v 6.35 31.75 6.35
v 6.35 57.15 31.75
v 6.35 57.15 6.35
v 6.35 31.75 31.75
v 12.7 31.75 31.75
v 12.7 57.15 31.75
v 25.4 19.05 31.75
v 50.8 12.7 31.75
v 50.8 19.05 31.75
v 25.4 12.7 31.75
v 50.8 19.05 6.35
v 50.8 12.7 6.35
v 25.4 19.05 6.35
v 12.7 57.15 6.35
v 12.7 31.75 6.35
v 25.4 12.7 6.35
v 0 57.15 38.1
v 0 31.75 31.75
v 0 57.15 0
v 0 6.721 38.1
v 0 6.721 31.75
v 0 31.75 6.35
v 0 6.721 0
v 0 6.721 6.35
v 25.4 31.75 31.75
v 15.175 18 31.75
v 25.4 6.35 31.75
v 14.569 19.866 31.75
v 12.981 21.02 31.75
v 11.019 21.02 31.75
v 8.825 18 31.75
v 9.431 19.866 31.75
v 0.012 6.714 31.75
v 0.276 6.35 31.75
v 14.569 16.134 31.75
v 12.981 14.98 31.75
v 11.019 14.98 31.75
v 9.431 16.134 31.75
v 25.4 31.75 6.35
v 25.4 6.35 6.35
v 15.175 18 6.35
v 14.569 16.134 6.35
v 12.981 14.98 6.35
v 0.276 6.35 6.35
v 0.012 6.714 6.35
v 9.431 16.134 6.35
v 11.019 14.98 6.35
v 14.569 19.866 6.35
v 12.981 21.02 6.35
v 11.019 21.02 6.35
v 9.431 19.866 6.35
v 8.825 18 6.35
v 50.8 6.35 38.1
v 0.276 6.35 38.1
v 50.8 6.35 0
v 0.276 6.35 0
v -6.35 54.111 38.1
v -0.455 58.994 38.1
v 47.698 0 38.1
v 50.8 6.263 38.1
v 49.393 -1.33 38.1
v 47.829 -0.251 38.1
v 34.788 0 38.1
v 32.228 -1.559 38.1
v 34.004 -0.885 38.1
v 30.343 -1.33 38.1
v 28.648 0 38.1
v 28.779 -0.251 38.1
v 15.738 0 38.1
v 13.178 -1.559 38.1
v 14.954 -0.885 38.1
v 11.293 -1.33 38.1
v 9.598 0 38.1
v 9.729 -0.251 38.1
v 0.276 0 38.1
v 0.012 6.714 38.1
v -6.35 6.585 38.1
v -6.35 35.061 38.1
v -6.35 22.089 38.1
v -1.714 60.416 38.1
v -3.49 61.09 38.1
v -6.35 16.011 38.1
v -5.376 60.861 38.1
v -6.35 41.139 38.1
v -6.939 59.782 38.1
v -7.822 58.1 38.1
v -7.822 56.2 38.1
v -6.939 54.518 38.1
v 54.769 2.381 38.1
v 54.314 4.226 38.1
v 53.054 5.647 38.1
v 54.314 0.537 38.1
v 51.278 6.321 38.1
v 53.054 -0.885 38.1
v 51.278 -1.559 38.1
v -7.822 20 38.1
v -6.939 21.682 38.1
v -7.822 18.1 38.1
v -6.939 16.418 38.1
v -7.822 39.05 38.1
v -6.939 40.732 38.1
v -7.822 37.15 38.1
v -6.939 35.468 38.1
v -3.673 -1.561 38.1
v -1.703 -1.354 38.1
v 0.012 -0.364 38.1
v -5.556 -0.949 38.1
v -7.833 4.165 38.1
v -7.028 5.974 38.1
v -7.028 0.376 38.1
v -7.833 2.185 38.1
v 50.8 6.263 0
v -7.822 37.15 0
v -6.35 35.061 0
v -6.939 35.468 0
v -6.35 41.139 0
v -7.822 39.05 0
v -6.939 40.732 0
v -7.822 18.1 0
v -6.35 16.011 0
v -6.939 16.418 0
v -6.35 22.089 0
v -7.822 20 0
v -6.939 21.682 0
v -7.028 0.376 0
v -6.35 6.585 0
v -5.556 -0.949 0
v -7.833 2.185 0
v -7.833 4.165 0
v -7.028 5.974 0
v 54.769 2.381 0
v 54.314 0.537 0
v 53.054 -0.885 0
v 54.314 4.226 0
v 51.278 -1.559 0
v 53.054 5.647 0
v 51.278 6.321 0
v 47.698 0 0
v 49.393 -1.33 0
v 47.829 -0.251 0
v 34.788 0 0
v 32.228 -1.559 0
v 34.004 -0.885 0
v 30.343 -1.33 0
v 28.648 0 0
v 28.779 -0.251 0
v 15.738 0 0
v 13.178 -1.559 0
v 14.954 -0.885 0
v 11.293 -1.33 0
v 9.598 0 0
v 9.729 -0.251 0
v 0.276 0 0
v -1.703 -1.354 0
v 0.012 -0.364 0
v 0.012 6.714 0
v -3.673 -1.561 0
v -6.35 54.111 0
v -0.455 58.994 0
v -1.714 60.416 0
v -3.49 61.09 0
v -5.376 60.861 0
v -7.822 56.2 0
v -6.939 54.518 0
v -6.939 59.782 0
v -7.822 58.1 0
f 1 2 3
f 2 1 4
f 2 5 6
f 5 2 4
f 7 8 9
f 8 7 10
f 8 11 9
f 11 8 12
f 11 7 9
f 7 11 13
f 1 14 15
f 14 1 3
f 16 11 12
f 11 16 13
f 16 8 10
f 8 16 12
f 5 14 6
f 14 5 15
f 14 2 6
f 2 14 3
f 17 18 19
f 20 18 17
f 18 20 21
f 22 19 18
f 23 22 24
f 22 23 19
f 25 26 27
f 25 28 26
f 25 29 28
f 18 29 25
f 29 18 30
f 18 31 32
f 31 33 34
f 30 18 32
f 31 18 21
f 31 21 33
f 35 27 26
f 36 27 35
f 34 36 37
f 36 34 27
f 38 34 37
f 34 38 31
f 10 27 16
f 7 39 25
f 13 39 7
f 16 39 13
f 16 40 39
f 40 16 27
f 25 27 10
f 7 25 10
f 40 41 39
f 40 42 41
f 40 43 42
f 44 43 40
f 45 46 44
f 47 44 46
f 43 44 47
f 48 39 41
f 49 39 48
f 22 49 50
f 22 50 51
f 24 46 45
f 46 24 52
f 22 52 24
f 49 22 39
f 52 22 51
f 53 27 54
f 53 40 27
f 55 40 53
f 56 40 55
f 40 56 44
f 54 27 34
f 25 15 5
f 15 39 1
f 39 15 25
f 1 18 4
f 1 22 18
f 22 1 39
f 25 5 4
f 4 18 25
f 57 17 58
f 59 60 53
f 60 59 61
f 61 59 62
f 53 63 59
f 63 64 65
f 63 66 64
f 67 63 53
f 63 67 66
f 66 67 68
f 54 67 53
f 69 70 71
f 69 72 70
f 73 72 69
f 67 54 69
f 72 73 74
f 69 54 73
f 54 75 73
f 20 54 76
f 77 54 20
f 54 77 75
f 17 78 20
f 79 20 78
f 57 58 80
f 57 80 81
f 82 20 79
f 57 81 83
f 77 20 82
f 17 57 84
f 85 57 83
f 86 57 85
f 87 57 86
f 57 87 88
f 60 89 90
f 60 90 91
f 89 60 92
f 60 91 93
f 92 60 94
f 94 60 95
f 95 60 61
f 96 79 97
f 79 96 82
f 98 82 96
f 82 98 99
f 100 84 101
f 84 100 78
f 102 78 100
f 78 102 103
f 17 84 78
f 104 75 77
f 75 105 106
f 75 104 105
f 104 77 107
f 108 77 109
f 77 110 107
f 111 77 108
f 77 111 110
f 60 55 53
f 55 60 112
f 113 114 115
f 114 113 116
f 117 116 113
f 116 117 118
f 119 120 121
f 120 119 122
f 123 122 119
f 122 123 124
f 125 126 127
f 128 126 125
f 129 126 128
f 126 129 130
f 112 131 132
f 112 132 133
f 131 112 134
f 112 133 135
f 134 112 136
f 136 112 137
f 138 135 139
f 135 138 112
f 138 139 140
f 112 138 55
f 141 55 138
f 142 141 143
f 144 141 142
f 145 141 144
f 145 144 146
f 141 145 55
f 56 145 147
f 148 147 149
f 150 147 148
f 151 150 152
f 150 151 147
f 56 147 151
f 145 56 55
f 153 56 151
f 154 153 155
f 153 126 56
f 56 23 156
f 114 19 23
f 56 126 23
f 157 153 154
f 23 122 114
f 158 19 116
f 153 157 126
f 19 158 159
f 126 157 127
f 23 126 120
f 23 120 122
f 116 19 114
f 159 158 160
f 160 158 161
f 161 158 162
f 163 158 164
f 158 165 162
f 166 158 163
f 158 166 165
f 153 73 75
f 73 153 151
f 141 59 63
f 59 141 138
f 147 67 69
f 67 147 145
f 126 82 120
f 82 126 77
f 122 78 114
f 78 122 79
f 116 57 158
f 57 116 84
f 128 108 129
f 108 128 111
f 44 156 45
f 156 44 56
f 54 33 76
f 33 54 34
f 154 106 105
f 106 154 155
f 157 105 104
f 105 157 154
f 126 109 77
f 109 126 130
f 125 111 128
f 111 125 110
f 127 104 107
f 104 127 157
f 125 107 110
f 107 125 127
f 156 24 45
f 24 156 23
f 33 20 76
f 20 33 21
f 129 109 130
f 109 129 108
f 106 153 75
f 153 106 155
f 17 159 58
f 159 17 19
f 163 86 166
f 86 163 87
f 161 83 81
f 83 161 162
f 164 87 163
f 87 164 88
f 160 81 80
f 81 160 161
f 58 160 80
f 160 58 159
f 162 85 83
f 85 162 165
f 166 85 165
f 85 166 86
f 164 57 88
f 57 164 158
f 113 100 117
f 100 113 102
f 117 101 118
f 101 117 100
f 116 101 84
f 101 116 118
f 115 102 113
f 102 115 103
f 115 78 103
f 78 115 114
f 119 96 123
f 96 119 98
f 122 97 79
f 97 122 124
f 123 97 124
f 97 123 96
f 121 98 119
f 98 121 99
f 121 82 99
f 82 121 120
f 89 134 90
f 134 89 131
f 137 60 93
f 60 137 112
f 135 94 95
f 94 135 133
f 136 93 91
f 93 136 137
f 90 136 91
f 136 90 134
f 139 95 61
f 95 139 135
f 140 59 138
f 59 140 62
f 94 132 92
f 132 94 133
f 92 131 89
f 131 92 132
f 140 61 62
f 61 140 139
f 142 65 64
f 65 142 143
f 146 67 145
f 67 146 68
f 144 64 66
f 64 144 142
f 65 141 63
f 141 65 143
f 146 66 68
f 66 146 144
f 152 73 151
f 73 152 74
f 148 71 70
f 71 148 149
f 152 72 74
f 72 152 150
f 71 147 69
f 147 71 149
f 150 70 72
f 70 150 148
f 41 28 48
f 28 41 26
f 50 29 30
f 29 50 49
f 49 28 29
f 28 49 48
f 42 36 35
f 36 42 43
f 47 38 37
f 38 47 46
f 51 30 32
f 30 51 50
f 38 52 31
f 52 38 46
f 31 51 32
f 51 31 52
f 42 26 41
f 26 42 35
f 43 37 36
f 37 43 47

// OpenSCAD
// file: joints.scad
/**
 * joints.scad is part of Paper Laptop project.
 * This file contains various models for joining two or
 * more pieces of flat materials together.
 *
 * @author R. S. Doiel, <rsdoiel@gmail.com>
 * copyright (c) 2016 all rights reserved
 * Released under a BSD 2-clause license
 */

// Formboard firm enough to make a case with is about
// 1/4th inch (6.35mm) thick. Usually sold in single sheets
// of about 20"x30".

//
// Basic models are for parts without any holes for fasteners.
//

/*
 * CornerBasic() - corner joint without fastener hole
 */
module CornerBasic() {
    u = 3.175; // Unit is 3.175mm or 1/8th inch:w
    t = 6.35; // Thickness of the 1/4th" Foamboard

    // Inner block, width, depth, height
    translate([0, t, t]) {
            color([1,0,0]) cube([25.4, 25.4, 25.4]); 
    }
    // Outer shell
    color([0,1,0]) cube([50.8,t,25.4+(2*t)]);
    translate([-t,t,0]) {
        color([0,1,0]) cube([t,50.8,25.4+(2*t)]);
    }
    // Outer corners
    translate([u*-1,u,0]) {
        color([0,1,0]) cylinder(h=25.4+(2*t),r=1.5*u,center=false);
    }

    // Outer bumps
    translate([u*-1.25,u*18,0]) {
        color([0,1,0]) cylinder(h=25.4+(2*t),r=1.25*u,center=false);
    }
    translate([u*-1.25,u*12,0]) {
        color([0,1,0]) cylinder(h=25.4+(2*t),r=1.25*u,center=false);
    }
    translate([u*-1.25,u*6,0]) {
        color([0,1,0]) cylinder(h=25.4+(2*t),r=1.25*u,center=false);
    }

    translate([u*16,u*0.75,0]) {
        color([0,1,0]) cylinder(h=25.4+(2*t),r=1.25*u,center=false);
    }
    translate([u*10,u*0.75,0]) {
        color([0,1,0]) cylinder(h=25.4+(2*t),r=1.25*u,center=false);
    }
    translate([u*4,u*0.75,0]) {
        color([0,1,0]) cylinder(h=25.4+(2*t),r=1.25*u,center=false);
    }
    
    // Inner shell
    translate([t,2*t,t]) {
        color([0,1,0]) cube([50.8-t,t,25.4]);
        color([0,1,0]) cube([t,50.8-t,25.4]);
    }
}

//
// Corner() basic corner joint plus hole for fastener
//
module Corner() {
    difference() {
        u = 3.175;
        CornerBasic();
        // Add a hole for screw
        translate([12,18,0]) {
            color([0,0,1]) cylinder(h=25.4+(4*u),r=u,center=false);
        }
    }
}

//
// EndBasic
//
module EndBasic() {
    u = 3.175; // Unit is 3.175mm or 1/8th inch:w
    t = 6.35; // Thickness of the 1/4th" Foamboard

    // Inner block, width, depth, height
    translate([0, t, t]) {
            color([1,0,0]) cube([25.4, 25.4, 25.4]); 
    }
    // Outer shell
    color([0,1,0]) cube([50.8,t,25.4+(2*t)]);

    // Outer corners
    translate([u*-1,u,0]) {
        color([0,1,0]) cylinder(h=25.4+(2*t),r=1.5*u,center=false);
    }

    translate([u*16,u*0.75,0]) {
        color([0,1,0]) cylinder(h=25.4+(2*t),r=1.25*u,center=false);
    }
    translate([u*10,u*0.75,0]) {
        color([0,1,0]) cylinder(h=25.4+(2*t),r=1.25*u,center=false);
    }
    translate([u*4,u*0.75,0]) {
        color([0,1,0]) cylinder(h=25.4+(2*t),r=1.25*u,center=false);
    }
    
    // Inner shell
    translate([t,2*t,t]) {
        color([0,1,0]) cube([50.8-t,t,25.4]);
    }
}

//
// End() basic corner joint plus hole for fastener
//
module End() {
    difference() {
        u = 3.175;
        EndBasic();
        // Add a hole for screw
        translate([12,18,0]) {
            color([0,0,1]) cylinder(h=25.4+(4*u),r=u,center=false);
        }
    }
}

//
// SpliceBasic
//
module SpliceBasic() {
    u = 3.175; // Unit is 3.175mm or 1/8th inch:w
    t = 6.35; // Thickness of the 1/4th" Foamboard

    // Inner block (cube: [width, depth, height])
    translate([0, t, t]) {
            color([1,0,0]) cube([25.4, 25.4, 25.4]); 
    }
    // Outer shell
    color([0,1,0]) cube([50.8,t,25.4+(2*t)]);
    
    // Outer corners
    translate([u*16,u*0.75,0]) {
        color([0,1,0]) cylinder(h=25.4+(2*t),r=1.25*u,center=false);
    }
    translate([u*10,u*0.75,0]) {
        color([0,1,0]) cylinder(h=25.4+(2*t),r=1.25*u,center=false);
    }
    translate([u*4,u*0.75,0]) {
        color([0,1,0]) cylinder(h=25.4+(2*t),r=1.25*u,center=false);
    }
    
    // Inner shell
    translate([t,2*t,t]) {
        color([0,1,0]) cube([50.8-t,t,25.4]);
    }
    
    // Mirrored shapes
    mirror(180) {
        // Inner block (cube: [width, depth, height])
        translate([0, t, t]) {
                color([1,0,0]) cube([25.4, 25.4, 25.4]); 
        }
        // Outer shell
        color([0,1,0]) cube([50.8,t,25.4+(2*t)]);
        
        // Outer corners
        translate([u*16,u*0.75,0]) {
            color([0,1,0]) cylinder(h=25.4+(2*t),r=1.25*u,center=false);
        }
        translate([u*10,u*0.75,0]) {
            color([0,1,0]) cylinder(h=25.4+(2*t),r=1.25*u,center=false);
        }
        translate([u*4,u*0.75,0]) {
            color([0,1,0]) cylinder(h=25.4+(2*t),r=1.25*u,center=false);
        }
        
        // Inner shell
        translate([t,2*t,t]) {
            color([0,1,0]) cube([50.8-t,t,25.4]);
        }
    }
}

//
// Splice() basic corner joint plus hole for fastener
//
module Splice() {
    difference() {
        u = 3.175;
        SpliceBasic();
        // Add a hole for screw
        translate([0,18,0]) {
            color([0,0,1]) cylinder(h=25.4+(4*u),r=u,center=false);
        }
    }
}


// Four corner joints
module FourCornersGrouped() {
    Corner();
    translate([120,6.35,0]) {
        rotate(90) {
            Corner();
        }
    }
    translate([114, 124, 0]) {
        rotate(180) {
            Corner();
            translate([120,6.35,0]) {
                rotate(90) {
                    Corner();
                }
            }
        }
    }
}

// Two End Pieces
module TwoEndsGrouped() {
    translate([0, 0, 0]) {
        End();
    }
    translate([114, 0, 0]) {
        mirror(180) End();
    }
}

module TwoSplicesGrouped() {
    translate([58, 0, 0]) {
        Splice();
    }
    translate([58, 38, 0]) {
        Splice();
    }
}

//Corner();
//Splice();
//End();
//FourCornersGrouped();
//TwoEndsGrouped();
//TwoSplicesGrouped();
// main file
/**
 * A collection of parts to print together.
 */
 include <joints.scad>
 
 
Corner();

//FourCornersGrouped();
//TwoEndsGrouped();
//TwoSplicesGrouped();
